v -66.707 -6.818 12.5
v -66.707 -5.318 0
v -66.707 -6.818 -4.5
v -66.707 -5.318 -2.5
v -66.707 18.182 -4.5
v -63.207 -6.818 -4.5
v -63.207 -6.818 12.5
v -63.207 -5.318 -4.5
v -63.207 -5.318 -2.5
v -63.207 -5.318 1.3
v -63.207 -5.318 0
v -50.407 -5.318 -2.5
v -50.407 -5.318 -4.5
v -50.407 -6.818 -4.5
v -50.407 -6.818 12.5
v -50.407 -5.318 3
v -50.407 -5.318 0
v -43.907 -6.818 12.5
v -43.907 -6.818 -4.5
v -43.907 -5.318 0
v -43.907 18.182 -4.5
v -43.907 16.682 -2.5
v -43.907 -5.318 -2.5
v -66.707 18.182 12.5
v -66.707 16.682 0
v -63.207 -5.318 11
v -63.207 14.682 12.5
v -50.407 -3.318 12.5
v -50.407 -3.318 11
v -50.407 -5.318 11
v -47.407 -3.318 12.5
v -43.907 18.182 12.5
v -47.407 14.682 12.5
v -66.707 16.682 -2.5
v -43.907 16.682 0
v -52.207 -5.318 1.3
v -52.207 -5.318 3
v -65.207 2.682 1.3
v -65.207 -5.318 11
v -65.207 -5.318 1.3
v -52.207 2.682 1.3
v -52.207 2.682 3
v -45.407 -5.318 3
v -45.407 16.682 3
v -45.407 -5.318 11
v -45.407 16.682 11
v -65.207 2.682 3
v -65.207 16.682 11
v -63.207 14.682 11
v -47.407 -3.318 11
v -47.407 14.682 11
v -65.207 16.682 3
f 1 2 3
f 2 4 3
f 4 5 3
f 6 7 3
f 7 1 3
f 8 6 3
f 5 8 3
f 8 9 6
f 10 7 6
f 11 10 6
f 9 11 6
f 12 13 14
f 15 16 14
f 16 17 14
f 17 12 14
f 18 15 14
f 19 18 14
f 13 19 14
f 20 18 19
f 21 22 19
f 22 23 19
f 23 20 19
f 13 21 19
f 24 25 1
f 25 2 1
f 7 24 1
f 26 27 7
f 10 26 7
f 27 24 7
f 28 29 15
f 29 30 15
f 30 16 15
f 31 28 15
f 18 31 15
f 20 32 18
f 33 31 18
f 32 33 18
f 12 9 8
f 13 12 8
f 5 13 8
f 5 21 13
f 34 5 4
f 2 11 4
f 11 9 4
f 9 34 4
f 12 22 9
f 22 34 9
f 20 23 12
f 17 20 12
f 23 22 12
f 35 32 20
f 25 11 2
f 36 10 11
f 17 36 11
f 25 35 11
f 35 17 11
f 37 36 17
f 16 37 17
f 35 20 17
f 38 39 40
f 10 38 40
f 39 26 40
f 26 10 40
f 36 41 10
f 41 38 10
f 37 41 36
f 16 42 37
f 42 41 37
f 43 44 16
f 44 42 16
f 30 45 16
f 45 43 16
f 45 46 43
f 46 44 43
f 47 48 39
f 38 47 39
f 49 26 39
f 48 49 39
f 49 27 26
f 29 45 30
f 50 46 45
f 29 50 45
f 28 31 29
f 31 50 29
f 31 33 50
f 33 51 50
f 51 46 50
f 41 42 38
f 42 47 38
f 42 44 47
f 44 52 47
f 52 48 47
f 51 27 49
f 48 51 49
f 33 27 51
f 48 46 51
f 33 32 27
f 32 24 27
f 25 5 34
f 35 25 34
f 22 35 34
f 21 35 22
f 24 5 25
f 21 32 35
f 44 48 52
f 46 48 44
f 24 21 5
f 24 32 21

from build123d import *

# Parameters (mm, degrees)
CROQUIS1_R               = 1.5
SALIENTE_EXTRUIR1_DEPTH  = 3
SALIENTE_EXTRUIR2_DEPTH  = 8
CROQUIS3_W               = 13
CROQUIS3_H               = 1.7
CORTAR_EXTRUIR1_DEPTH    = 8
CROQUIS5_W               = 3.5
CROQUIS5_H               = 11
CROQUIS5_W_2             = 6.5
SALIENTE_EXTRUIR3_DEPTH  = 1.5
SALIENTE_EXTRUIR4_DEPTH  = 1.5
CORTAR_EXTRUIR2_START    = -12.5
CORTAR_EXTRUIR2_DEPTH    = 3
SALIENTE_EXTRUIR10_DEPTH = 4.5
CORTAR_EXTRUIR3_START    = -22.8
CROQUIS12_W              = 2.5
CROQUIS12_H              = 22
CORTAR_EXTRUIR3_DEPTH    = 22.8


with BuildPart() as part:
    # Croquis1 → Saliente-Extruir1 (new body)
    with BuildSketch(Plane.XY):
        with BuildLine():
            Line((-55.603283504, 22.637490201), (-73.603283504, 19.937490201))
            ThreePointArc((-73.603283504, 19.937490201), (-74.822083019, 19.26473017), (-75.306602598, 17.959617496))
            Line((-75.306602598, 17.959617496), (-75.306602598, -5.318007663))
            Line((-75.306602598, -5.318007663), (-35.306602598, -5.318007663))
            Line((-35.306602598, -5.318007663), (-35.306602598, 17.959617496))
            ThreePointArc((-35.306602598, 17.959617496), (-35.791122177, 19.26473017), (-37.009921692, 19.937490201))
            Line((-37.009921692, 19.937490201), (-55.009921692, 22.637490201))
            ThreePointArc((-55.009921692, 22.637490201), (-55.306602598, 22.659617496), (-55.603283504, 22.637490201))
        make_face()
        with Locations((-71.306602598, 15.681992337)):
            Circle(CROQUIS1_R, mode=Mode.SUBTRACT)
        with Locations((-39.306602598, 15.681992337)):
            Circle(CROQUIS1_R, mode=Mode.SUBTRACT)
    extrude(amount=SALIENTE_EXTRUIR1_DEPTH)

    # Croquis2 → Saliente-Extruir2 (add)
    with BuildSketch(Plane.XY.offset(3)):
        Polygon((-66.706602598, -5.318007663), (-65.206602598, -5.318007663), (-65.206602598, 16.681992337), (-45.406602598, 16.681992337), (-45.406602598, -5.318007663), (-43.906602598, -5.318007663), (-43.906602598, 18.181992337), (-66.706602598, 18.181992337), align=None)
    extrude(amount=SALIENTE_EXTRUIR2_DEPTH)

    # Croquis3 → Cortar-Extruir1 (cut)
    with BuildSketch(Plane.XZ.offset(5.318007663)):
        with Locations((-58.706602598, 2.15)):
            Rectangle(CROQUIS3_W, CROQUIS3_H)
    extrude(amount=-CORTAR_EXTRUIR1_DEPTH, mode=Mode.SUBTRACT)

    # Croquis5 → Saliente-Extruir3 (add)
    with BuildSketch(Plane.XZ.offset(5.318007663)):
        with Locations((-64.956602598, 5.5)):
            Rectangle(CROQUIS5_W, CROQUIS5_H)
        with Locations((-47.156602598, 5.5)):
            Rectangle(CROQUIS5_W_2, CROQUIS5_H)
    extrude(amount=SALIENTE_EXTRUIR3_DEPTH)

    # Croquis6 → Saliente-Extruir4 (add)
    with BuildSketch(Plane.XY.offset(11)):
        Polygon((-63.206602598, -5.318007663), (-63.206602598, -6.818007663), (-66.706602598, -6.818007663), (-66.706602598, 18.181992337), (-43.906602598, 18.181992337), (-43.906602598, -6.818007663), (-50.406602598, -6.818007663), (-50.406602598, -3.318007663), (-47.406602598, -3.318007663), (-47.406602598, 14.681992337), (-63.206602598, 14.681992337), align=None)
    extrude(amount=SALIENTE_EXTRUIR4_DEPTH)

    # Croquis7 → Cortar-Extruir2 (cut)
    with BuildSketch(Plane.XY.offset(12.5).offset(CORTAR_EXTRUIR2_START)):
        Polygon((-66.706602598, -6.818007663), (-66.706602598, 18.181992337), (-43.906602598, 18.181992337), (-43.906602598, -6.818007663), (-20.536273409, -6.818007663), (-20.536273409, 28.419792756), (-79.716652243, 28.419792756), (-79.716652243, -6.818007663), align=None)
    extrude(amount=CORTAR_EXTRUIR2_DEPTH, mode=Mode.SUBTRACT)

    # Croquis11 → Saliente-Extruir10 (add)
    with BuildSketch(Plane(origin=(0, 0, 0), x_dir=(-1, 0, 0), z_dir=(0, 0, -1))):
        Polygon((66.706602598, 18.181992337), (43.906602598, 18.181992337), (43.906602598, -6.818007663), (50.406602598, -6.818007663), (50.406602598, -5.318007663), (63.206602598, -5.318007663), (63.206602598, -6.818007663), (66.706602598, -6.818007663), align=None)
    extrude(amount=SALIENTE_EXTRUIR10_DEPTH)

    # Croquis12 → Cortar-Extruir3 (cut)
    with BuildSketch(Plane(origin=(-43.906602598, 0, 0), x_dir=(0, 0, -1), z_dir=(1, 0, 0)).offset(CORTAR_EXTRUIR3_START)):
        with Locations((1.25, 5.681992337)):
            Rectangle(CROQUIS12_W, CROQUIS12_H)
    extrude(amount=CORTAR_EXTRUIR3_DEPTH, mode=Mode.SUBTRACT)


solid = part.part
